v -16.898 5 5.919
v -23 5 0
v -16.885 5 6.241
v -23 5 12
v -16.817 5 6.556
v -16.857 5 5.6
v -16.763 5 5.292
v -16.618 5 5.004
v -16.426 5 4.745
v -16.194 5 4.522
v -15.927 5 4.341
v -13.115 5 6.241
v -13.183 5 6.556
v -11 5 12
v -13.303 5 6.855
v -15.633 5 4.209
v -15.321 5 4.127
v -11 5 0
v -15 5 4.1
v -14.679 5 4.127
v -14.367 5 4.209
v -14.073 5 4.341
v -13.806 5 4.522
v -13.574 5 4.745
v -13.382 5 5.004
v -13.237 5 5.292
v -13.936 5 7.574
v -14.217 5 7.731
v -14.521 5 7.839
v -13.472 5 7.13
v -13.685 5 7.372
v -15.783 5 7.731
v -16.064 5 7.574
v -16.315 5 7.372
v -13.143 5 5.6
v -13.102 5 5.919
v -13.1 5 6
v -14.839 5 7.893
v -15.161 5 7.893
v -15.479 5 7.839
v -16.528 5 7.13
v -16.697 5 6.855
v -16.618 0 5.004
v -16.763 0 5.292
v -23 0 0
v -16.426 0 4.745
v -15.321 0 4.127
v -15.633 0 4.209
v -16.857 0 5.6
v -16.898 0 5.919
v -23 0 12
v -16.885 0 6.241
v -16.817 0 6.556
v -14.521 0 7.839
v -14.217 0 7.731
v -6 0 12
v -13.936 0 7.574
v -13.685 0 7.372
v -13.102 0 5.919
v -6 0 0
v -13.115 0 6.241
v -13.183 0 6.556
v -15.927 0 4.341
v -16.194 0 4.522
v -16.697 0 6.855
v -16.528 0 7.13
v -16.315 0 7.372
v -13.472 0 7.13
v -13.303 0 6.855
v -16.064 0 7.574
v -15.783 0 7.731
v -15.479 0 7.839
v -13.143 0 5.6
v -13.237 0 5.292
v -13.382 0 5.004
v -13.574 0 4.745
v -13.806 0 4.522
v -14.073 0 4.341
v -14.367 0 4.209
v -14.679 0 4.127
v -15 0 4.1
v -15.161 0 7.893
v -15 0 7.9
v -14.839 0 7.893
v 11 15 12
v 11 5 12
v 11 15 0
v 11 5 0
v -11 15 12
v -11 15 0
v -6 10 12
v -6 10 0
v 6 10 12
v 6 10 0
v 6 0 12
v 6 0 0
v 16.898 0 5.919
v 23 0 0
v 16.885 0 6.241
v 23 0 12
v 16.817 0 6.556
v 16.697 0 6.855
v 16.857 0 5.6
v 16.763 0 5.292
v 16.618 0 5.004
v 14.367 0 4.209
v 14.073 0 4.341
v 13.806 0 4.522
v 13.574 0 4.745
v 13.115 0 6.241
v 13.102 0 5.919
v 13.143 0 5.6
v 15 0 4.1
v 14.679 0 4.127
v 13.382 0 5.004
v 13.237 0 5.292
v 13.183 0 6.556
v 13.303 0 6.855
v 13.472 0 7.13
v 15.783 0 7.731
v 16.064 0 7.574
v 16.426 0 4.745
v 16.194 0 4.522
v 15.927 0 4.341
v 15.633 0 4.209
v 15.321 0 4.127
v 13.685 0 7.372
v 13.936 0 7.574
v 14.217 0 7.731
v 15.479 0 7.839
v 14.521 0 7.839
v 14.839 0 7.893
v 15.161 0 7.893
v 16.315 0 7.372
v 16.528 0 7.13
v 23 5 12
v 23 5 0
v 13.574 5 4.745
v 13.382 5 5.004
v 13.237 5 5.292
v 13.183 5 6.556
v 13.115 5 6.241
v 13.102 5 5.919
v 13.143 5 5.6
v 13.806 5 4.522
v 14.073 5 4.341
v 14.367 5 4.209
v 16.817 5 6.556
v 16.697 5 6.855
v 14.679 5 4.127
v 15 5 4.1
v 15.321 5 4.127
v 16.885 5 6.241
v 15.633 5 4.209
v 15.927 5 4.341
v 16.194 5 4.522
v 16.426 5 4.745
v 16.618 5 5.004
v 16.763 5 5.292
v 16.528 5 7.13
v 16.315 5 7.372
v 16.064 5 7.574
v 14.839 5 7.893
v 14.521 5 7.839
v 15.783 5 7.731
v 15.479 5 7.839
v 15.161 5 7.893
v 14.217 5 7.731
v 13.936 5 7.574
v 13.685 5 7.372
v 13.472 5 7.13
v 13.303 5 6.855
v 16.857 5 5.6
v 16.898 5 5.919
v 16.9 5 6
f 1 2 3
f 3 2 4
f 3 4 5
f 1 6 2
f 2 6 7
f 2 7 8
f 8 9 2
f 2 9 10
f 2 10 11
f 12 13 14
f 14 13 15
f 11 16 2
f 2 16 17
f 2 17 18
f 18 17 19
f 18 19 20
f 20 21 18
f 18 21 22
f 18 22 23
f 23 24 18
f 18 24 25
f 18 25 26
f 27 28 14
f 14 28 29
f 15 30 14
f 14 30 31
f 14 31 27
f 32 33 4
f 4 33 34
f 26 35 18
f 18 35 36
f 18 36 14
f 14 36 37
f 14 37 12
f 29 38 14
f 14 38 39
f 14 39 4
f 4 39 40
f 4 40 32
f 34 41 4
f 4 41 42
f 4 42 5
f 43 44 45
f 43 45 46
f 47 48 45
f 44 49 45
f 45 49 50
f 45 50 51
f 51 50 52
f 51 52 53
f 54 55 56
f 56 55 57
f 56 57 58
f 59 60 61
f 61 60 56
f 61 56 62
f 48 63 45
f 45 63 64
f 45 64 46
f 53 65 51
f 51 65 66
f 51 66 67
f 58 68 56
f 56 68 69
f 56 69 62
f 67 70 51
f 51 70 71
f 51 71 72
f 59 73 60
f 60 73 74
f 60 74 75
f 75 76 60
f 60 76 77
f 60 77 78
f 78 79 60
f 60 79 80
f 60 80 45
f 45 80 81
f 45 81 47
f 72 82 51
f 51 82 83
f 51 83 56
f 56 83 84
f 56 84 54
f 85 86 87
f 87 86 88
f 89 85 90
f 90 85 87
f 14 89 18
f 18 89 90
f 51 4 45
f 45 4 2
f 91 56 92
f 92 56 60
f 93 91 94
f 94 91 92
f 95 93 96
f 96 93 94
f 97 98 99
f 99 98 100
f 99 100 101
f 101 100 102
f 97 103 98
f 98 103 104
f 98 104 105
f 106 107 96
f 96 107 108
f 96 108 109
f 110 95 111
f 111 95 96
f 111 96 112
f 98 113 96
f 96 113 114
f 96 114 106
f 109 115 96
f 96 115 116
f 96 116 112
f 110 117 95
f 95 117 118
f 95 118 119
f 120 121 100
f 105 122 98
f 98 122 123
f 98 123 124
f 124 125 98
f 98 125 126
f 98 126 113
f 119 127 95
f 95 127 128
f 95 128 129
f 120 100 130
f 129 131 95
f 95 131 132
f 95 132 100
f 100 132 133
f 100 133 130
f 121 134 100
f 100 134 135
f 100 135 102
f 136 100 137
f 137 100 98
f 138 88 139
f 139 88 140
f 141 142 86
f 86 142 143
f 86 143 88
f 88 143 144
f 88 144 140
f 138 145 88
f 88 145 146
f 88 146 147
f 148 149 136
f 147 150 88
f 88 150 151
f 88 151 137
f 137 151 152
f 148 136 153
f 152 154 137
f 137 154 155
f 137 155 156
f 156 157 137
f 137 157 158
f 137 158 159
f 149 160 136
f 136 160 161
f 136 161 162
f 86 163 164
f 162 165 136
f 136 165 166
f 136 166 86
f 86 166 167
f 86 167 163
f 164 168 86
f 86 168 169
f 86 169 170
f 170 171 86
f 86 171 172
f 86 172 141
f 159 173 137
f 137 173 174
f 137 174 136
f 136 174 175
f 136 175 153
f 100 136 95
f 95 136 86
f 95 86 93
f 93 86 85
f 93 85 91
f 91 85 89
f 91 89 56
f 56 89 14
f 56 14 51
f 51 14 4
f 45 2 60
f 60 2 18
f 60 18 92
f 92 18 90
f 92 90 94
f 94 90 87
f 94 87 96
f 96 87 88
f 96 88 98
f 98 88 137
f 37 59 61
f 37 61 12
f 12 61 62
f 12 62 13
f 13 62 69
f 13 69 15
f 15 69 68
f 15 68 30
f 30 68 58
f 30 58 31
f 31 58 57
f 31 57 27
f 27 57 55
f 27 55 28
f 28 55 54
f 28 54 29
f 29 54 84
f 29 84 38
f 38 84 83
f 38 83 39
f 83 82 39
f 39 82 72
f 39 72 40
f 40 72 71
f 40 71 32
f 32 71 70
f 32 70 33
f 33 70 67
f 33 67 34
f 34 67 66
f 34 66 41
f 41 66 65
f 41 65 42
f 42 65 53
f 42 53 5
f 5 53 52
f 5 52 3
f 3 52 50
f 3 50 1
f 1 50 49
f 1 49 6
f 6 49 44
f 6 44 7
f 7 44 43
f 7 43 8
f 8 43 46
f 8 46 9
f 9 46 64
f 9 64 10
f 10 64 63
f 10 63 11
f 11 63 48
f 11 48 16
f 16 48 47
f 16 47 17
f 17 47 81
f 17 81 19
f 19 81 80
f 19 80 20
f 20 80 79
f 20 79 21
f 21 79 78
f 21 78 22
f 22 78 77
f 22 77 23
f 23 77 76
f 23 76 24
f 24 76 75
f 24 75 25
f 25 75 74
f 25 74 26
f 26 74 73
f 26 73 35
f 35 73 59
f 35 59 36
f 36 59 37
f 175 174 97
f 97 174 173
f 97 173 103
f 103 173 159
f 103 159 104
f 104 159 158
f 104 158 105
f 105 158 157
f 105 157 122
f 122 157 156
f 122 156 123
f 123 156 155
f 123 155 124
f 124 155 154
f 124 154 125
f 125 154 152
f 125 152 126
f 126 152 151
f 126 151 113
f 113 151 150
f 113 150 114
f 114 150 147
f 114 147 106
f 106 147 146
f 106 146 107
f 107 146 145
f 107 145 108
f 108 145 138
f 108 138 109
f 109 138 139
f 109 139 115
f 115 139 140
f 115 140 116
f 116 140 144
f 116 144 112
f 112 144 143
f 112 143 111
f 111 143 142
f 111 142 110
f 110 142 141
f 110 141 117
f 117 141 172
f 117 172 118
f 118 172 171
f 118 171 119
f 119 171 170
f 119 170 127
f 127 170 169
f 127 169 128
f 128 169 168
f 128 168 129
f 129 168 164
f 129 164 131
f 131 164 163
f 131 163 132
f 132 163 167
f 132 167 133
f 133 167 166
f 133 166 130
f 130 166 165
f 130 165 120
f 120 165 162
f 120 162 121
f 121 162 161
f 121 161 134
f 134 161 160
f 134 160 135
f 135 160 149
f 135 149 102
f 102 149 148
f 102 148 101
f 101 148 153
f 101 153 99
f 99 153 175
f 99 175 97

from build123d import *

# Parameters (mm, degrees)
EXTRUDE_1_DEPTH     = 12
SKETCH_2_R          = 1.9
CUT_EXTRUDE_5_DEPTH = 30.966648128


with BuildPart() as part:
    # 草图1 → 凸台-拉伸1 (new body)
    with BuildSketch(Plane.XY):
        Polygon((-11, 15), (11, 15), (11, 5), (23, 5), (23, 0), (6, 0), (6, 10), (-6, 10), (-6, 0), (-23, 0), (-23, 5), (-11, 5), align=None)
    extrude(amount=EXTRUDE_1_DEPTH)

    # 草图2 → 切除-拉伸5 (cut, through all)
    with BuildSketch(Plane(origin=(0, 0, 0), x_dir=(1, 0, 0), z_dir=(0, 1, 0))):
        with Locations((-15, -6)):
            Circle(SKETCH_2_R)
        with Locations(Location((15, -6, 0), (0, 0, 90))):
            Circle(SKETCH_2_R)
    extrude(amount=CUT_EXTRUDE_5_DEPTH, mode=Mode.SUBTRACT)


solid = part.part
